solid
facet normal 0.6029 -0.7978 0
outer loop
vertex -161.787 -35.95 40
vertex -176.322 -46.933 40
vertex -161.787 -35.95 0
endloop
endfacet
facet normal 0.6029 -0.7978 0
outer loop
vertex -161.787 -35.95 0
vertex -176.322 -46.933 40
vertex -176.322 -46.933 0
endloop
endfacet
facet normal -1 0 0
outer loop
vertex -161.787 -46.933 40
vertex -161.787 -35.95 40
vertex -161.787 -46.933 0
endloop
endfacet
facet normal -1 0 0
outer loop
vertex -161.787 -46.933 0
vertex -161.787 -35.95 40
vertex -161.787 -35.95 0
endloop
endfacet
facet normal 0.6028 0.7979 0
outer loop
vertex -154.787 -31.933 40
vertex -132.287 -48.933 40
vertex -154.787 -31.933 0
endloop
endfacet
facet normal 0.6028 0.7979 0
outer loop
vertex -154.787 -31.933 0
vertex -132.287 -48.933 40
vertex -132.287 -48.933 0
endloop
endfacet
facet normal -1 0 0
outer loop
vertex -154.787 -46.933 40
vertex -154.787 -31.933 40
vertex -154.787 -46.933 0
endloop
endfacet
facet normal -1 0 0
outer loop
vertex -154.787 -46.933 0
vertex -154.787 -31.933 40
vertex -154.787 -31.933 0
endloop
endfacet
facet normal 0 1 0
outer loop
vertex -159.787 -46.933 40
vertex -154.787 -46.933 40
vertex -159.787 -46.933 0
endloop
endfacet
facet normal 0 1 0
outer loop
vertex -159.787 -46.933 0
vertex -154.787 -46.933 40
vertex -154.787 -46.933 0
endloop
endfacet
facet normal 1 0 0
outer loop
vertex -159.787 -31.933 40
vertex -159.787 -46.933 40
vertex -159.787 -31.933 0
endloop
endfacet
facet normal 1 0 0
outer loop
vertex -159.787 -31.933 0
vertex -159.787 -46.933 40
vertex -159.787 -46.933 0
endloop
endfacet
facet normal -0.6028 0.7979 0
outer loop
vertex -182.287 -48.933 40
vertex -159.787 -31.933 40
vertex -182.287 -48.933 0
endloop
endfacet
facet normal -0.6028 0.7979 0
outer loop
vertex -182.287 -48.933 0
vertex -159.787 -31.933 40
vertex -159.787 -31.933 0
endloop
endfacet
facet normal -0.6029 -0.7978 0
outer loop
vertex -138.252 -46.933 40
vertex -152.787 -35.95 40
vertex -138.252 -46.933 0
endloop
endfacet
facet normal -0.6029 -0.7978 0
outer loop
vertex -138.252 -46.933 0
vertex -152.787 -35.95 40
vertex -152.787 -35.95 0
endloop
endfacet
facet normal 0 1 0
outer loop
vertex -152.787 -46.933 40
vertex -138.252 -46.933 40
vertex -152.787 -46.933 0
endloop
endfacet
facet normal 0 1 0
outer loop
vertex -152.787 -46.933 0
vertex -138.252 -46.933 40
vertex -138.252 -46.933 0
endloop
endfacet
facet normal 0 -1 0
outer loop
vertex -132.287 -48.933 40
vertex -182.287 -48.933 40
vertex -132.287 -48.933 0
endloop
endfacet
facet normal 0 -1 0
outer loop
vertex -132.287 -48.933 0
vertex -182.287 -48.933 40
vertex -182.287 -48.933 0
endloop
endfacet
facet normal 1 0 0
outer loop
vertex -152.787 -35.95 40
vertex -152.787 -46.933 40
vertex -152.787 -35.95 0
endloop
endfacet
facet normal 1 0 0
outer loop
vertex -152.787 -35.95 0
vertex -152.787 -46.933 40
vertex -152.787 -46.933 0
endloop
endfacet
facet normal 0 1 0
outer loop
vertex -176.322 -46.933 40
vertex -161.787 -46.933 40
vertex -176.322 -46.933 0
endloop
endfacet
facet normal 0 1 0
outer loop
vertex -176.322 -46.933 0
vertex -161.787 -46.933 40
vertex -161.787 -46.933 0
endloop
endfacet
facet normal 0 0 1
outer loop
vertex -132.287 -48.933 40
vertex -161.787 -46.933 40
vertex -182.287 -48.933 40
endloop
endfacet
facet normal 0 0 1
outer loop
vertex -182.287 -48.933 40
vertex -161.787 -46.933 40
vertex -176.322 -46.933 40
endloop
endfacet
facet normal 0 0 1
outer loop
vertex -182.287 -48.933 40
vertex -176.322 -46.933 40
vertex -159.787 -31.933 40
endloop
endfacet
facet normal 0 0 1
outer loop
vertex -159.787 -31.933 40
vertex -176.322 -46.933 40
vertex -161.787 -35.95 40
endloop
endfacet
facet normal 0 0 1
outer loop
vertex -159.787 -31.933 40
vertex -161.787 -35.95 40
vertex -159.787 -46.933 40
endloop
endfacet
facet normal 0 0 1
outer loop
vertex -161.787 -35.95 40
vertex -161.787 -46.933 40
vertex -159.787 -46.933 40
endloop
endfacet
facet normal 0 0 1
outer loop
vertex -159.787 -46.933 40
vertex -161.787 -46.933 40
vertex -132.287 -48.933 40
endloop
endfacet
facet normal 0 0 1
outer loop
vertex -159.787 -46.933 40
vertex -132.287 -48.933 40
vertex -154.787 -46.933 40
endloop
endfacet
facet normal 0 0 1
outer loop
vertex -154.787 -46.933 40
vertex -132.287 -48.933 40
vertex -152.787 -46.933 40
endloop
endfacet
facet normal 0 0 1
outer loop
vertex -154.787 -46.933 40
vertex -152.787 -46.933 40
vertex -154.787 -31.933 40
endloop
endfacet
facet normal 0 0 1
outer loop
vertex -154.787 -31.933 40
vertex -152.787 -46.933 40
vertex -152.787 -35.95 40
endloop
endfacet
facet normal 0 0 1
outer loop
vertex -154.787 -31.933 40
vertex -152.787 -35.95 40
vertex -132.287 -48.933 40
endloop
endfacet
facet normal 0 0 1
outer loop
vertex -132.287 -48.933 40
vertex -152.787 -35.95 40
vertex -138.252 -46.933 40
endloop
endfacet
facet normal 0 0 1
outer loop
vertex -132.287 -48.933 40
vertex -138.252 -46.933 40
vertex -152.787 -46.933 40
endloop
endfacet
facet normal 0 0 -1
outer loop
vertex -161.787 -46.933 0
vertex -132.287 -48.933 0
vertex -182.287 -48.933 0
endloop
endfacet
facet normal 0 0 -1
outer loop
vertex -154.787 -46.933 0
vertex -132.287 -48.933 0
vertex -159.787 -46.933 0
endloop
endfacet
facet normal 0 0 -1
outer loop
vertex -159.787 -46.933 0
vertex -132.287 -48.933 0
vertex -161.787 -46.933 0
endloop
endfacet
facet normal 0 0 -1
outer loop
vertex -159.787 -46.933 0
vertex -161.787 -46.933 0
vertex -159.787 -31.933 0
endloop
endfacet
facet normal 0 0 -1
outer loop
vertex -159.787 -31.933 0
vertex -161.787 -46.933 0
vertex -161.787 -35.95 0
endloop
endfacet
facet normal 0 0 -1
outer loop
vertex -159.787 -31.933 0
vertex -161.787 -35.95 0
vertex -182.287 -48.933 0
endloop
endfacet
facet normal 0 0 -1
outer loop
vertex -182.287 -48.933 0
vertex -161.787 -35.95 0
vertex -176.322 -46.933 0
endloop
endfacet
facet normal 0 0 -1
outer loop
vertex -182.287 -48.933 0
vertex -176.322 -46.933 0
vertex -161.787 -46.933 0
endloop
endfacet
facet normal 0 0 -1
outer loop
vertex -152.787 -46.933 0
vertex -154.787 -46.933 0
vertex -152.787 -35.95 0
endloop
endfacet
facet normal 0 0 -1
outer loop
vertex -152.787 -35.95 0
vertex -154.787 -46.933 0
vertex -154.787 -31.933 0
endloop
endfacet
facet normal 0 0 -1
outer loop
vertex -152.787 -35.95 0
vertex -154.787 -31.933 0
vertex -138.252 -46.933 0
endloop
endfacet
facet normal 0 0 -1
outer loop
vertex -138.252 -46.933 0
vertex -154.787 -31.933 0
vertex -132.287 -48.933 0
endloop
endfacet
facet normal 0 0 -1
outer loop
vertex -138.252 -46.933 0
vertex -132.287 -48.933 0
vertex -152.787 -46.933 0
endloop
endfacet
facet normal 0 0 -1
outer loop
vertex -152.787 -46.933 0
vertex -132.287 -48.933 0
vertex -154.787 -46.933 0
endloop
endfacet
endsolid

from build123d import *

# Parameters (mm, degrees)
BOSS_EXTRU_2_DEPTH = 40


with BuildPart() as part:
    # Esquisse1 → Boss.-Extru.2 (new body)
    with BuildSketch(Plane.XY):
        Polygon((-132.286889429, -48.932516673), (-154.786889429, -31.932516673), (-154.786889429, -46.932516673), (-159.786889429, -46.932516673), (-159.786889429, -31.932516673), (-182.286889429, -48.932516673), align=None)
        Polygon((-138.251616171, -46.932516673), (-152.786889429, -35.950310211), (-152.786889429, -46.932516673), align=None, mode=Mode.SUBTRACT)
        Polygon((-176.322162687, -46.932516673), (-161.786889429, -35.950310211), (-161.786889429, -46.932516673), align=None, mode=Mode.SUBTRACT)
    extrude(amount=BOSS_EXTRU_2_DEPTH)


solid = part.part
